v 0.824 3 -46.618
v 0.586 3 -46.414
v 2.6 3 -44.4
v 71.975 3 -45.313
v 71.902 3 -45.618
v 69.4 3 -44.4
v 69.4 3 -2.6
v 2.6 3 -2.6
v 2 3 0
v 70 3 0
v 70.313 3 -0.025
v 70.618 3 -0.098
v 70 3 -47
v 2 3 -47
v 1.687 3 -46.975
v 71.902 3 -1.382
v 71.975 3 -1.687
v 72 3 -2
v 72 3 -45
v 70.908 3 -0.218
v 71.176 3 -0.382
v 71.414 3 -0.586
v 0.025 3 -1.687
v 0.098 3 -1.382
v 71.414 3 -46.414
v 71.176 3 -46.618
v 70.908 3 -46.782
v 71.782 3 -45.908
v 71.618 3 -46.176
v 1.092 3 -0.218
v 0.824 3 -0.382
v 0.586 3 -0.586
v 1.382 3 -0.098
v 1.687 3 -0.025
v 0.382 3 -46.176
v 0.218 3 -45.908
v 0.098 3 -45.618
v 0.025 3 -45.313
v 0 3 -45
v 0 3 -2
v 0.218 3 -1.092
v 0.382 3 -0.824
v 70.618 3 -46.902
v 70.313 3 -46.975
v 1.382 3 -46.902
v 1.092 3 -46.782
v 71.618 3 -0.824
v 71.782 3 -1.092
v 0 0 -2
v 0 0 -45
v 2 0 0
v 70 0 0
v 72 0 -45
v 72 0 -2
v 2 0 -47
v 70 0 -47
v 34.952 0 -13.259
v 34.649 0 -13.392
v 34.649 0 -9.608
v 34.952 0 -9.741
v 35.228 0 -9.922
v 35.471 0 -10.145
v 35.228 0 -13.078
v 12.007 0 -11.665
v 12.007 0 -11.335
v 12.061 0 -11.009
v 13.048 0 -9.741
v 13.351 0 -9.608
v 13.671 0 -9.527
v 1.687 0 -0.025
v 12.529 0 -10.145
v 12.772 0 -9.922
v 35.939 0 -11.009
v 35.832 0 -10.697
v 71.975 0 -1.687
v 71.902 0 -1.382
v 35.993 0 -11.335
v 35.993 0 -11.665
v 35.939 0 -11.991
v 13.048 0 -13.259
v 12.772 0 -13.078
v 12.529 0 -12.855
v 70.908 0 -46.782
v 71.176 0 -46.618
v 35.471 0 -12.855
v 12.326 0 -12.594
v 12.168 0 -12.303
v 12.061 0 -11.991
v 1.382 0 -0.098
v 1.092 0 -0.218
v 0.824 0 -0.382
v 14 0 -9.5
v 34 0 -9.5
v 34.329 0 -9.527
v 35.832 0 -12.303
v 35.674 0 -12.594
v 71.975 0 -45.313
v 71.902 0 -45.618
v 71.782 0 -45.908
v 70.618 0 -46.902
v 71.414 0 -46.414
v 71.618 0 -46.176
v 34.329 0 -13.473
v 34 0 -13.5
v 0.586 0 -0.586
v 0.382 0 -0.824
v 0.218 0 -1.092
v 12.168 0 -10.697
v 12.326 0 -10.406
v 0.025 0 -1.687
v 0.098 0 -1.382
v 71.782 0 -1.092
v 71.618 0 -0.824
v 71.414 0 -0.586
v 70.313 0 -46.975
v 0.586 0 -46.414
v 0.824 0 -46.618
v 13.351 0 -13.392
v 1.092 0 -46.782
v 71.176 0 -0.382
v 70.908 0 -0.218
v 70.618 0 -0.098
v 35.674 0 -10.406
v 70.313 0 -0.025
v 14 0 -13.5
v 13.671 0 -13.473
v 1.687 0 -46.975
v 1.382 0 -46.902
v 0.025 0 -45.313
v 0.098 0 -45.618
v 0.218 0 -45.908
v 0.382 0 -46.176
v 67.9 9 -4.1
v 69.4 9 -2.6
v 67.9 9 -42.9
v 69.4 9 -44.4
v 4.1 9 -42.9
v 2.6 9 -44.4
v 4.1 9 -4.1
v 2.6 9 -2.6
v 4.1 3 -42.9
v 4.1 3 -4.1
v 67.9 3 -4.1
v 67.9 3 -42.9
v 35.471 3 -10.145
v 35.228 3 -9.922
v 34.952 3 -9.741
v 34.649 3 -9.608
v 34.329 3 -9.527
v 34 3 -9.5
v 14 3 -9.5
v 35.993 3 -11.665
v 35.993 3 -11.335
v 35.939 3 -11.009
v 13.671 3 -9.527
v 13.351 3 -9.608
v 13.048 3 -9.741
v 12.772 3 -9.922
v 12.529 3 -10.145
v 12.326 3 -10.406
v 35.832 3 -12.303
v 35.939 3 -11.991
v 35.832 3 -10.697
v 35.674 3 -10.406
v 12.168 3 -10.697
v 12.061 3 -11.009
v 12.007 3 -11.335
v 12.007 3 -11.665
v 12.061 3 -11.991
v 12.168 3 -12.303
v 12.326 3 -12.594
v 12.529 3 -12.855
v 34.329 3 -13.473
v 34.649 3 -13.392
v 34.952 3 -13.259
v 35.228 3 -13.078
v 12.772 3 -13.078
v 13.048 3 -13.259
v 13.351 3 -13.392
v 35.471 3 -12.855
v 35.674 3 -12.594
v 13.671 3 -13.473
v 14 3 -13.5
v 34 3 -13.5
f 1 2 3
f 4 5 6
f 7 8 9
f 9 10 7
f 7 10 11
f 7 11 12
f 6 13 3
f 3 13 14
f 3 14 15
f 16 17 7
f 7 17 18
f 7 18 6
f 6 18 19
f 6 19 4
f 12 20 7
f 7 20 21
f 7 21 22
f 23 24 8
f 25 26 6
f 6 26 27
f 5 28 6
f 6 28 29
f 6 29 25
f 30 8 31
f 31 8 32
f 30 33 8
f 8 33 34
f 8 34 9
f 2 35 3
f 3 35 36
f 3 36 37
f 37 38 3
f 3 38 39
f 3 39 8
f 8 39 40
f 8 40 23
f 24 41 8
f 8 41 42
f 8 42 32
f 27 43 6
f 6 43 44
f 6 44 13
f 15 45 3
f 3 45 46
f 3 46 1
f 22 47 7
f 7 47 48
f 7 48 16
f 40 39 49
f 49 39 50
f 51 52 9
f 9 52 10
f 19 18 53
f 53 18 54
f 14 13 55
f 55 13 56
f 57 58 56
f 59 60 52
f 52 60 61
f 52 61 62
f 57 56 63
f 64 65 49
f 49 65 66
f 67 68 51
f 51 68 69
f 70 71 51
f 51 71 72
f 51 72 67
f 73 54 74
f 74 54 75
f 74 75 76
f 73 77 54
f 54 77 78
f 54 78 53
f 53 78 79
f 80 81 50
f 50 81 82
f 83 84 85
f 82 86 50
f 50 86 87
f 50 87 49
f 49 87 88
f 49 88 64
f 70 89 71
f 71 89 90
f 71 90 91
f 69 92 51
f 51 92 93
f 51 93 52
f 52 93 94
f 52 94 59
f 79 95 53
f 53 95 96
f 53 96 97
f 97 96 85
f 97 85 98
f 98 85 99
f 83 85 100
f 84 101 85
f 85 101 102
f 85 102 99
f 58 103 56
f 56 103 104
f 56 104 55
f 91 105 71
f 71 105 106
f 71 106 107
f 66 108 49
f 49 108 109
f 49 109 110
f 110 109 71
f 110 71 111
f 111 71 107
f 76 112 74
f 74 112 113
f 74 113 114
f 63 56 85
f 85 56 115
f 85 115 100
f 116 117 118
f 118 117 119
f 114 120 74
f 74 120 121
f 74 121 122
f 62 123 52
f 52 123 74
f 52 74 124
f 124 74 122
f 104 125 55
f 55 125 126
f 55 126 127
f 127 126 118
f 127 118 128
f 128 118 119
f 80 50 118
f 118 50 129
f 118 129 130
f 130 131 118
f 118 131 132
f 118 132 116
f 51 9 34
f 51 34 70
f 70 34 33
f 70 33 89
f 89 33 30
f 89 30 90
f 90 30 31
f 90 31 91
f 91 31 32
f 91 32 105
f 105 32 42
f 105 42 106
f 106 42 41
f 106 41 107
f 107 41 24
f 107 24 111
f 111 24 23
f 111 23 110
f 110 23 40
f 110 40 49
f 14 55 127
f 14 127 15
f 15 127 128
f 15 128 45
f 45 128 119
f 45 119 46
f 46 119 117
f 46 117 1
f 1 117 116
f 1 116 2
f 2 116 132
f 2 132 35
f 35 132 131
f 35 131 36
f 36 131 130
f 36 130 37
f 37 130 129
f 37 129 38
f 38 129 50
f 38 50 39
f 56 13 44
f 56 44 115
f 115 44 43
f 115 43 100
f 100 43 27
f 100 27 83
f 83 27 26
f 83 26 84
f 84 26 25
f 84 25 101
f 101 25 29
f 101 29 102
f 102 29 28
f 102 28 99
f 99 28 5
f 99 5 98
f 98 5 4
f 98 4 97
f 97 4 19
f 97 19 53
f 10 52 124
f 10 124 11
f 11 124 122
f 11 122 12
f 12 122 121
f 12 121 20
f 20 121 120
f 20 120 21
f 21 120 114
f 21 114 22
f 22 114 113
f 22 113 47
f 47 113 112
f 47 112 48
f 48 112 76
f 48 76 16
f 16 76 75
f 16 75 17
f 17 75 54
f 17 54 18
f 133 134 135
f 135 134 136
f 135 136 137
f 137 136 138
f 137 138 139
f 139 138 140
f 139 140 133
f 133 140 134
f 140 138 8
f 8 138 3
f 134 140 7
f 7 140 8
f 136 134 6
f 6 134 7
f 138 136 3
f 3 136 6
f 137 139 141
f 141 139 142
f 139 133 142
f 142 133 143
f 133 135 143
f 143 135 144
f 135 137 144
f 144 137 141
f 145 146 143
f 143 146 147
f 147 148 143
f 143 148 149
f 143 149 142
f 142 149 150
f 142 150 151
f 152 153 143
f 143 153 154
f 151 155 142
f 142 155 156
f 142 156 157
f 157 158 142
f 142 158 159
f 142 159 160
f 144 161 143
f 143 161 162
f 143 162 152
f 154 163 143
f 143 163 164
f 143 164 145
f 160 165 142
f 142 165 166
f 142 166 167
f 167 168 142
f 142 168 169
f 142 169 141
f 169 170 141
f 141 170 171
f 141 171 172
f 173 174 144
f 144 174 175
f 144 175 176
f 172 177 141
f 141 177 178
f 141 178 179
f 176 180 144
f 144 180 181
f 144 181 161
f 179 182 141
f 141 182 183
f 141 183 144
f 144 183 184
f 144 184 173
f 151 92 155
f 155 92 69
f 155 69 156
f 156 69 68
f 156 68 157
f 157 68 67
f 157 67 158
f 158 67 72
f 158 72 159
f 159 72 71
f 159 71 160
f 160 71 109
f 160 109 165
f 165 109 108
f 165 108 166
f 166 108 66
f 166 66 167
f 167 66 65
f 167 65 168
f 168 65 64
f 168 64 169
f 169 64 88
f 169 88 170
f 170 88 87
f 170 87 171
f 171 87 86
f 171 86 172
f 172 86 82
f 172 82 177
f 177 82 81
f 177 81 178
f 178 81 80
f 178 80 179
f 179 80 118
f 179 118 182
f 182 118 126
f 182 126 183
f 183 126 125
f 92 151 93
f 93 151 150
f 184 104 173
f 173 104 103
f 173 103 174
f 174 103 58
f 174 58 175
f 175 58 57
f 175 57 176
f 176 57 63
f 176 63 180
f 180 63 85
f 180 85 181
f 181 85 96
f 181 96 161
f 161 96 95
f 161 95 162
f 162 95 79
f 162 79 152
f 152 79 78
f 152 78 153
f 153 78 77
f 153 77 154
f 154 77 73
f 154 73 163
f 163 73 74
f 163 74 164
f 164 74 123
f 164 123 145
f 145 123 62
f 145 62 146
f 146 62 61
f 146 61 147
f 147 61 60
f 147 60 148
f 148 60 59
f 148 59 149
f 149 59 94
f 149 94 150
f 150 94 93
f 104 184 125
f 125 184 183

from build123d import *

# Parameters (mm, degrees)
SKETCH2_W           = 72
SKETCH2_H           = 47
BOSS_EXTRUDE1_DEPTH = 3
FILLET1_R           = 2
SKETCH3_W           = 66.8
SKETCH3_H           = 41.8
SKETCH3_W_2         = 63.8
SKETCH3_H_2         = 38.8
BOSS_EXTRUDE2_DEPTH = 6
CUT_EXTRUDE1_DEPTH  = 6


with BuildPart() as part:
    # Sketch2 → Boss-Extrude1 (new body)
    with BuildSketch(Plane(origin=(0, 0, 0), x_dir=(1, 0, 0), z_dir=(0, 1, 0))):
        with Locations((36, 23.5)):
            Rectangle(SKETCH2_W, SKETCH2_H)
    extrude(amount=BOSS_EXTRUDE1_DEPTH)

    # Fillet1
    fillet1_edges = [part.edges().sort_by_distance(p)[0] for p in [
        (0, 1.5, 0),
        (72, 1.5, 0),
        (72, 1.5, -47),
        (0, 1.5, -47),
    ]]
    fillet(fillet1_edges, radius=FILLET1_R)

    # Sketch3 → Boss-Extrude2 (add)
    with BuildSketch(Plane(origin=(0, 3, 0), x_dir=(1, 0, 0), z_dir=(0, 1, 0))):
        with Locations((36, 23.5)):
            Rectangle(SKETCH3_W, SKETCH3_H)
        with Locations((36, 23.5)):
            Rectangle(SKETCH3_W_2, SKETCH3_H_2, mode=Mode.SUBTRACT)
    extrude(amount=BOSS_EXTRUDE2_DEPTH)

    # Sketch4 → Cut-Extrude1 (cut)
    with BuildSketch(Plane.XZ):
        with BuildLine():
            Line((14, -9.5), (34, -9.5))
            ThreePointArc((34, -9.5), (36, -11.5), (34, -13.5))
            Line((34, -13.5), (14, -13.5))
            ThreePointArc((14, -13.5), (12, -11.5), (14, -9.5))
        make_face()
    extrude(amount=-CUT_EXTRUDE1_DEPTH, mode=Mode.SUBTRACT)


solid = part.part
